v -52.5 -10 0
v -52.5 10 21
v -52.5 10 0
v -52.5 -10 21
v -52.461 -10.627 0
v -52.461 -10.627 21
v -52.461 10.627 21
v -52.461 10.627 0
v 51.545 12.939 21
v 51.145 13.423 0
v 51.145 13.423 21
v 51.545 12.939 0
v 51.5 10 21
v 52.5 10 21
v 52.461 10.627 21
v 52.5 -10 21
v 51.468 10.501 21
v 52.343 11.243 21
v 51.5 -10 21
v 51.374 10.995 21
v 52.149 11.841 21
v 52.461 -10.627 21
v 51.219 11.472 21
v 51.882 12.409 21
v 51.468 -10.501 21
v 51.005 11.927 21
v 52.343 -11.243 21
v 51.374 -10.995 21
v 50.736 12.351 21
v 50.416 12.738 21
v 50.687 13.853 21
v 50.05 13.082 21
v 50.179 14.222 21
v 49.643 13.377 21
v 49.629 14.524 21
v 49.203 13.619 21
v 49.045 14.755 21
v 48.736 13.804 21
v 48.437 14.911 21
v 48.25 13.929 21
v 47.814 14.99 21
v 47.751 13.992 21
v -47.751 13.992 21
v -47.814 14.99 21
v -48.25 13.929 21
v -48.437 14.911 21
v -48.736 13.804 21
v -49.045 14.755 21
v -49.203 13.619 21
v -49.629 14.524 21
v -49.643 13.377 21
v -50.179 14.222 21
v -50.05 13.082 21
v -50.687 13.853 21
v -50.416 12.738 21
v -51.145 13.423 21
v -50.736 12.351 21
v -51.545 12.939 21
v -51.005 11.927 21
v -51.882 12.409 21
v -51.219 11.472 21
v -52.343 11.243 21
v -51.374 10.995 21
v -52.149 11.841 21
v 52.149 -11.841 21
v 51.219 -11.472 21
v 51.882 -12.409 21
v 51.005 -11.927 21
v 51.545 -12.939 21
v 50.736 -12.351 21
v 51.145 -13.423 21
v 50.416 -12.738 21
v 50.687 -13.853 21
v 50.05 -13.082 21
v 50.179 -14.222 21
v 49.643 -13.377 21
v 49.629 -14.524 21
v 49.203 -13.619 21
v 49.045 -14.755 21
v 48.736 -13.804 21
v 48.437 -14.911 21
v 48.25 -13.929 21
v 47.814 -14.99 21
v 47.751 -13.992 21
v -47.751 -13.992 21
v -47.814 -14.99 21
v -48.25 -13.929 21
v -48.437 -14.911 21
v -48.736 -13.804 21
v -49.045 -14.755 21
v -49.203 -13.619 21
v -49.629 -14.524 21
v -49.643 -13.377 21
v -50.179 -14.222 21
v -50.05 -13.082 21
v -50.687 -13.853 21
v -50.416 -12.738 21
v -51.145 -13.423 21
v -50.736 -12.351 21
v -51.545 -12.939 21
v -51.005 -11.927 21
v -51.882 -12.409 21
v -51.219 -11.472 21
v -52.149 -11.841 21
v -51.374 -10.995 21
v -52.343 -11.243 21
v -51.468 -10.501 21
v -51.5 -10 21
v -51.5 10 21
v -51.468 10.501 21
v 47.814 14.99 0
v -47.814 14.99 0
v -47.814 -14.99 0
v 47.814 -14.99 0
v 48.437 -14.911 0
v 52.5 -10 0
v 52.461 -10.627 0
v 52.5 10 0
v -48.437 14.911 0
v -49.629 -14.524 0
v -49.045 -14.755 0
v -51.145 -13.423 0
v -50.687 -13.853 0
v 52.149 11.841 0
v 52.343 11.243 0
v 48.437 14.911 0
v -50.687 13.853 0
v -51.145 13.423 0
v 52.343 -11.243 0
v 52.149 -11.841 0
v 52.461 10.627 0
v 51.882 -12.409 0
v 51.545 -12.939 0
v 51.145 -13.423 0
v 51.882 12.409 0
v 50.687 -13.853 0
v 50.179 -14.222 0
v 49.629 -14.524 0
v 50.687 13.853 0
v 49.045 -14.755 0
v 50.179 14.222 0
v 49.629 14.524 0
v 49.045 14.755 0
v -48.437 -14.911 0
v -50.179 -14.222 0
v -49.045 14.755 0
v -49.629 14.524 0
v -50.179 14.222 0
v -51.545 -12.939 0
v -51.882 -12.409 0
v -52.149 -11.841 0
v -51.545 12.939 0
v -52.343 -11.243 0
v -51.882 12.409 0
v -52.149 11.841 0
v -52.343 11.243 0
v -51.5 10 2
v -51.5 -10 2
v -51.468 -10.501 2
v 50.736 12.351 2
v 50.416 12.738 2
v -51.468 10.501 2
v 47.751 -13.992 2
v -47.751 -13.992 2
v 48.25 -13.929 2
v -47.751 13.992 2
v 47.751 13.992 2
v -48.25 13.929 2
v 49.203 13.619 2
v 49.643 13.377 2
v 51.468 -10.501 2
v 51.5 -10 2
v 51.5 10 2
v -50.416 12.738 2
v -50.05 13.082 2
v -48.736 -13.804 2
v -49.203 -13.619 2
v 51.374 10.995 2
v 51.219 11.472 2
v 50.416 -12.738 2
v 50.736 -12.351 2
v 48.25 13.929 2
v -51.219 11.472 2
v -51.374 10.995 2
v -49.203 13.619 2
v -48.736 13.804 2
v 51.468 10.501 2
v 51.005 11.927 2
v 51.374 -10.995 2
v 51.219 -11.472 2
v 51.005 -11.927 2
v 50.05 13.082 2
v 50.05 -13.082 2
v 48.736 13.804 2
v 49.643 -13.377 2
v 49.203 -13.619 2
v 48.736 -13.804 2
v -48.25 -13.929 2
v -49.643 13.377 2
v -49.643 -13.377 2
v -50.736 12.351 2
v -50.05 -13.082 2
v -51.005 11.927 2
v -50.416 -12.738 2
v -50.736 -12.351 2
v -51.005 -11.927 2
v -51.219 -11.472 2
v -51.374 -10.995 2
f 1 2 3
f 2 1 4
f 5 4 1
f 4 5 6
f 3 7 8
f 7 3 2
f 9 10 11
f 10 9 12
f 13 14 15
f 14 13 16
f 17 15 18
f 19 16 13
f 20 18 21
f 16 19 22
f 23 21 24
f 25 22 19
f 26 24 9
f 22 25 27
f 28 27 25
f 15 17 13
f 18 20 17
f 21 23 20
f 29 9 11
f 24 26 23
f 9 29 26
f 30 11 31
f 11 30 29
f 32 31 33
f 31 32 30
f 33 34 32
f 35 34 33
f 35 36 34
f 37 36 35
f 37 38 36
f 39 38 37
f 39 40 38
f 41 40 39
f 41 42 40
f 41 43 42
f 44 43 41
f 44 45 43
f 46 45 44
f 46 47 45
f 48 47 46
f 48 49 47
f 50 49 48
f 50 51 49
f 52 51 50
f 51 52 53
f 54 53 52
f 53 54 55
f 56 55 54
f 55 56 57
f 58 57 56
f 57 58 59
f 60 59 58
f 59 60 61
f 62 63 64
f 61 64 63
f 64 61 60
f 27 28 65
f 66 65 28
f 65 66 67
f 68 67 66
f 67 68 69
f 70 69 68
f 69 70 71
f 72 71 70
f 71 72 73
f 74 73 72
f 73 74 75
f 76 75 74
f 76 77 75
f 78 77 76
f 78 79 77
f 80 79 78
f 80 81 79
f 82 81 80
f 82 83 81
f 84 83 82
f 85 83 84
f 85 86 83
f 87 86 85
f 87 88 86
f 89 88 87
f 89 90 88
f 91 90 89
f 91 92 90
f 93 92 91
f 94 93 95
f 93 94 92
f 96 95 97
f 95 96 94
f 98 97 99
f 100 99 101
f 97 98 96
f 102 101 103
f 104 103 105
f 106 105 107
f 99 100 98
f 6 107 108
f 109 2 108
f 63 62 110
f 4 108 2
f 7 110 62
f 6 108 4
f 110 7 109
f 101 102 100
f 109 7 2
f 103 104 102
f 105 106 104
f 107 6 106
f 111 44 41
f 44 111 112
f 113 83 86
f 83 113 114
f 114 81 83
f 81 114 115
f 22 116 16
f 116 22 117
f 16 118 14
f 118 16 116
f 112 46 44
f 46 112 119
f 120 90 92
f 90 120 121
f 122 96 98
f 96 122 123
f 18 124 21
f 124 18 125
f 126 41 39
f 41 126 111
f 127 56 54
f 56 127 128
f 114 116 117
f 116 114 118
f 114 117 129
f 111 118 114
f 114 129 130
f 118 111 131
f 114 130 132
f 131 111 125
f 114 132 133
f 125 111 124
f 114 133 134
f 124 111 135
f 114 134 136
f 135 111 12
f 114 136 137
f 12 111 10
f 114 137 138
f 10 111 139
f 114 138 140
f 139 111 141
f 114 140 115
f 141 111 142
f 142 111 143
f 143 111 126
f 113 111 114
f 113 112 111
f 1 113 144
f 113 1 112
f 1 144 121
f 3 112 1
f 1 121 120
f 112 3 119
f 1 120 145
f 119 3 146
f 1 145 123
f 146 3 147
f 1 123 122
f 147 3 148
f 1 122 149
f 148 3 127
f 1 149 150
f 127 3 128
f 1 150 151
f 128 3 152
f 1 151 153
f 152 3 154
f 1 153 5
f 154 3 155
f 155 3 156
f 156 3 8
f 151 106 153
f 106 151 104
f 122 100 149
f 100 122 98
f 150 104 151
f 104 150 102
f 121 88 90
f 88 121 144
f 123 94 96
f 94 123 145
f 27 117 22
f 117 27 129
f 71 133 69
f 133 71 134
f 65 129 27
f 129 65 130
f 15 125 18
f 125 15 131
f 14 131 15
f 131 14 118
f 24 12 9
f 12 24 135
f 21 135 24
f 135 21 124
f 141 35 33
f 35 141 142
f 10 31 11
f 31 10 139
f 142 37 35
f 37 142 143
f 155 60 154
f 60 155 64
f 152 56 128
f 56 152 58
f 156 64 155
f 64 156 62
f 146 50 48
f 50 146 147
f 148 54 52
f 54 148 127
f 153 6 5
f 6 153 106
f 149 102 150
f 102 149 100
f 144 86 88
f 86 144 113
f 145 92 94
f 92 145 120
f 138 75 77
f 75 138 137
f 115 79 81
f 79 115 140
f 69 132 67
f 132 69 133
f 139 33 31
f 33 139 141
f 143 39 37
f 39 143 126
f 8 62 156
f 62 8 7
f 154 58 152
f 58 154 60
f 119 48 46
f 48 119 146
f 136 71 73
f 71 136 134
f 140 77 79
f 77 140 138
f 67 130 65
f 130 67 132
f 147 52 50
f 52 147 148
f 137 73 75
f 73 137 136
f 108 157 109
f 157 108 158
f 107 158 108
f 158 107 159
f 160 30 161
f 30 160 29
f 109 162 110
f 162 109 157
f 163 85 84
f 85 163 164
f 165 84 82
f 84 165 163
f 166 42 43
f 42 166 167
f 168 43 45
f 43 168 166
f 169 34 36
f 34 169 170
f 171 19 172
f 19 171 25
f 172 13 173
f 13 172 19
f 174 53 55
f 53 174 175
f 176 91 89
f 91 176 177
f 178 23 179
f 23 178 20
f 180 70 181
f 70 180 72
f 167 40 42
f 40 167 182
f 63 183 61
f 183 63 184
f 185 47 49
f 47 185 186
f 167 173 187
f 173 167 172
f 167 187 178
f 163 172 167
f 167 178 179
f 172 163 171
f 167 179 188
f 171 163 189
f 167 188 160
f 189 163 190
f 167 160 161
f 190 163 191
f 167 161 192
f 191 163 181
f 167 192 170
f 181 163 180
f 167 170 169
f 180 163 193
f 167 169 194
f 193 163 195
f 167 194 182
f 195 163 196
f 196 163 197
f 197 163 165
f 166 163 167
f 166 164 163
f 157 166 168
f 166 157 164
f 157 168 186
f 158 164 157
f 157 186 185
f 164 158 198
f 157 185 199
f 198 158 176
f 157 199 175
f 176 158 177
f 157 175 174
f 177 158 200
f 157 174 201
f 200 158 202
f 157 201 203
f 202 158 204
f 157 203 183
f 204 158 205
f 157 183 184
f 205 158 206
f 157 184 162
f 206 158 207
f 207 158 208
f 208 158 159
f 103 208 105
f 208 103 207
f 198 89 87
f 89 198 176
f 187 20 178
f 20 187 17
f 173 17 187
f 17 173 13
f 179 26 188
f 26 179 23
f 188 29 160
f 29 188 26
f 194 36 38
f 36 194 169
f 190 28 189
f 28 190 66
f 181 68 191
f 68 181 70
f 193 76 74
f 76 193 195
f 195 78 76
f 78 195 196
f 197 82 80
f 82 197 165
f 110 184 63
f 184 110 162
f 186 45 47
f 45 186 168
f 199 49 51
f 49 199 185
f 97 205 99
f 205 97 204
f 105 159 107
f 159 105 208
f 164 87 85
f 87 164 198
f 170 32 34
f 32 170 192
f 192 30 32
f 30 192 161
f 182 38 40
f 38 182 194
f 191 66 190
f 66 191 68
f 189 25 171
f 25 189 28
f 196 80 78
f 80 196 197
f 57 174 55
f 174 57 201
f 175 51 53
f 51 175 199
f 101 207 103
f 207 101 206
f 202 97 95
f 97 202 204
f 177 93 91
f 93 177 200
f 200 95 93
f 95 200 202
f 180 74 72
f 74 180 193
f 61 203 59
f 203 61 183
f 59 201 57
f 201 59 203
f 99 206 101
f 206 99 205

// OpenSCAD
$fn = 50;


difference() {
	union() {
		hull() {
			translate(v = [-47.5000000000, 10.0000000000, 0]) {
				cylinder(h = 21, r = 5);
			}
			translate(v = [47.5000000000, 10.0000000000, 0]) {
				cylinder(h = 21, r = 5);
			}
			translate(v = [-47.5000000000, -10.0000000000, 0]) {
				cylinder(h = 21, r = 5);
			}
			translate(v = [47.5000000000, -10.0000000000, 0]) {
				cylinder(h = 21, r = 5);
			}
		}
	}
	union() {
		translate(v = [0, 0, 2]) {
			hull() {
				translate(v = [-47.5000000000, 10.0000000000, 0]) {
					cylinder(h = 19, r = 4);
				}
				translate(v = [47.5000000000, 10.0000000000, 0]) {
					cylinder(h = 19, r = 4);
				}
				translate(v = [-47.5000000000, -10.0000000000, 0]) {
					cylinder(h = 19, r = 4);
				}
				translate(v = [47.5000000000, -10.0000000000, 0]) {
					cylinder(h = 19, r = 4);
				}
			}
		}
	}
}
